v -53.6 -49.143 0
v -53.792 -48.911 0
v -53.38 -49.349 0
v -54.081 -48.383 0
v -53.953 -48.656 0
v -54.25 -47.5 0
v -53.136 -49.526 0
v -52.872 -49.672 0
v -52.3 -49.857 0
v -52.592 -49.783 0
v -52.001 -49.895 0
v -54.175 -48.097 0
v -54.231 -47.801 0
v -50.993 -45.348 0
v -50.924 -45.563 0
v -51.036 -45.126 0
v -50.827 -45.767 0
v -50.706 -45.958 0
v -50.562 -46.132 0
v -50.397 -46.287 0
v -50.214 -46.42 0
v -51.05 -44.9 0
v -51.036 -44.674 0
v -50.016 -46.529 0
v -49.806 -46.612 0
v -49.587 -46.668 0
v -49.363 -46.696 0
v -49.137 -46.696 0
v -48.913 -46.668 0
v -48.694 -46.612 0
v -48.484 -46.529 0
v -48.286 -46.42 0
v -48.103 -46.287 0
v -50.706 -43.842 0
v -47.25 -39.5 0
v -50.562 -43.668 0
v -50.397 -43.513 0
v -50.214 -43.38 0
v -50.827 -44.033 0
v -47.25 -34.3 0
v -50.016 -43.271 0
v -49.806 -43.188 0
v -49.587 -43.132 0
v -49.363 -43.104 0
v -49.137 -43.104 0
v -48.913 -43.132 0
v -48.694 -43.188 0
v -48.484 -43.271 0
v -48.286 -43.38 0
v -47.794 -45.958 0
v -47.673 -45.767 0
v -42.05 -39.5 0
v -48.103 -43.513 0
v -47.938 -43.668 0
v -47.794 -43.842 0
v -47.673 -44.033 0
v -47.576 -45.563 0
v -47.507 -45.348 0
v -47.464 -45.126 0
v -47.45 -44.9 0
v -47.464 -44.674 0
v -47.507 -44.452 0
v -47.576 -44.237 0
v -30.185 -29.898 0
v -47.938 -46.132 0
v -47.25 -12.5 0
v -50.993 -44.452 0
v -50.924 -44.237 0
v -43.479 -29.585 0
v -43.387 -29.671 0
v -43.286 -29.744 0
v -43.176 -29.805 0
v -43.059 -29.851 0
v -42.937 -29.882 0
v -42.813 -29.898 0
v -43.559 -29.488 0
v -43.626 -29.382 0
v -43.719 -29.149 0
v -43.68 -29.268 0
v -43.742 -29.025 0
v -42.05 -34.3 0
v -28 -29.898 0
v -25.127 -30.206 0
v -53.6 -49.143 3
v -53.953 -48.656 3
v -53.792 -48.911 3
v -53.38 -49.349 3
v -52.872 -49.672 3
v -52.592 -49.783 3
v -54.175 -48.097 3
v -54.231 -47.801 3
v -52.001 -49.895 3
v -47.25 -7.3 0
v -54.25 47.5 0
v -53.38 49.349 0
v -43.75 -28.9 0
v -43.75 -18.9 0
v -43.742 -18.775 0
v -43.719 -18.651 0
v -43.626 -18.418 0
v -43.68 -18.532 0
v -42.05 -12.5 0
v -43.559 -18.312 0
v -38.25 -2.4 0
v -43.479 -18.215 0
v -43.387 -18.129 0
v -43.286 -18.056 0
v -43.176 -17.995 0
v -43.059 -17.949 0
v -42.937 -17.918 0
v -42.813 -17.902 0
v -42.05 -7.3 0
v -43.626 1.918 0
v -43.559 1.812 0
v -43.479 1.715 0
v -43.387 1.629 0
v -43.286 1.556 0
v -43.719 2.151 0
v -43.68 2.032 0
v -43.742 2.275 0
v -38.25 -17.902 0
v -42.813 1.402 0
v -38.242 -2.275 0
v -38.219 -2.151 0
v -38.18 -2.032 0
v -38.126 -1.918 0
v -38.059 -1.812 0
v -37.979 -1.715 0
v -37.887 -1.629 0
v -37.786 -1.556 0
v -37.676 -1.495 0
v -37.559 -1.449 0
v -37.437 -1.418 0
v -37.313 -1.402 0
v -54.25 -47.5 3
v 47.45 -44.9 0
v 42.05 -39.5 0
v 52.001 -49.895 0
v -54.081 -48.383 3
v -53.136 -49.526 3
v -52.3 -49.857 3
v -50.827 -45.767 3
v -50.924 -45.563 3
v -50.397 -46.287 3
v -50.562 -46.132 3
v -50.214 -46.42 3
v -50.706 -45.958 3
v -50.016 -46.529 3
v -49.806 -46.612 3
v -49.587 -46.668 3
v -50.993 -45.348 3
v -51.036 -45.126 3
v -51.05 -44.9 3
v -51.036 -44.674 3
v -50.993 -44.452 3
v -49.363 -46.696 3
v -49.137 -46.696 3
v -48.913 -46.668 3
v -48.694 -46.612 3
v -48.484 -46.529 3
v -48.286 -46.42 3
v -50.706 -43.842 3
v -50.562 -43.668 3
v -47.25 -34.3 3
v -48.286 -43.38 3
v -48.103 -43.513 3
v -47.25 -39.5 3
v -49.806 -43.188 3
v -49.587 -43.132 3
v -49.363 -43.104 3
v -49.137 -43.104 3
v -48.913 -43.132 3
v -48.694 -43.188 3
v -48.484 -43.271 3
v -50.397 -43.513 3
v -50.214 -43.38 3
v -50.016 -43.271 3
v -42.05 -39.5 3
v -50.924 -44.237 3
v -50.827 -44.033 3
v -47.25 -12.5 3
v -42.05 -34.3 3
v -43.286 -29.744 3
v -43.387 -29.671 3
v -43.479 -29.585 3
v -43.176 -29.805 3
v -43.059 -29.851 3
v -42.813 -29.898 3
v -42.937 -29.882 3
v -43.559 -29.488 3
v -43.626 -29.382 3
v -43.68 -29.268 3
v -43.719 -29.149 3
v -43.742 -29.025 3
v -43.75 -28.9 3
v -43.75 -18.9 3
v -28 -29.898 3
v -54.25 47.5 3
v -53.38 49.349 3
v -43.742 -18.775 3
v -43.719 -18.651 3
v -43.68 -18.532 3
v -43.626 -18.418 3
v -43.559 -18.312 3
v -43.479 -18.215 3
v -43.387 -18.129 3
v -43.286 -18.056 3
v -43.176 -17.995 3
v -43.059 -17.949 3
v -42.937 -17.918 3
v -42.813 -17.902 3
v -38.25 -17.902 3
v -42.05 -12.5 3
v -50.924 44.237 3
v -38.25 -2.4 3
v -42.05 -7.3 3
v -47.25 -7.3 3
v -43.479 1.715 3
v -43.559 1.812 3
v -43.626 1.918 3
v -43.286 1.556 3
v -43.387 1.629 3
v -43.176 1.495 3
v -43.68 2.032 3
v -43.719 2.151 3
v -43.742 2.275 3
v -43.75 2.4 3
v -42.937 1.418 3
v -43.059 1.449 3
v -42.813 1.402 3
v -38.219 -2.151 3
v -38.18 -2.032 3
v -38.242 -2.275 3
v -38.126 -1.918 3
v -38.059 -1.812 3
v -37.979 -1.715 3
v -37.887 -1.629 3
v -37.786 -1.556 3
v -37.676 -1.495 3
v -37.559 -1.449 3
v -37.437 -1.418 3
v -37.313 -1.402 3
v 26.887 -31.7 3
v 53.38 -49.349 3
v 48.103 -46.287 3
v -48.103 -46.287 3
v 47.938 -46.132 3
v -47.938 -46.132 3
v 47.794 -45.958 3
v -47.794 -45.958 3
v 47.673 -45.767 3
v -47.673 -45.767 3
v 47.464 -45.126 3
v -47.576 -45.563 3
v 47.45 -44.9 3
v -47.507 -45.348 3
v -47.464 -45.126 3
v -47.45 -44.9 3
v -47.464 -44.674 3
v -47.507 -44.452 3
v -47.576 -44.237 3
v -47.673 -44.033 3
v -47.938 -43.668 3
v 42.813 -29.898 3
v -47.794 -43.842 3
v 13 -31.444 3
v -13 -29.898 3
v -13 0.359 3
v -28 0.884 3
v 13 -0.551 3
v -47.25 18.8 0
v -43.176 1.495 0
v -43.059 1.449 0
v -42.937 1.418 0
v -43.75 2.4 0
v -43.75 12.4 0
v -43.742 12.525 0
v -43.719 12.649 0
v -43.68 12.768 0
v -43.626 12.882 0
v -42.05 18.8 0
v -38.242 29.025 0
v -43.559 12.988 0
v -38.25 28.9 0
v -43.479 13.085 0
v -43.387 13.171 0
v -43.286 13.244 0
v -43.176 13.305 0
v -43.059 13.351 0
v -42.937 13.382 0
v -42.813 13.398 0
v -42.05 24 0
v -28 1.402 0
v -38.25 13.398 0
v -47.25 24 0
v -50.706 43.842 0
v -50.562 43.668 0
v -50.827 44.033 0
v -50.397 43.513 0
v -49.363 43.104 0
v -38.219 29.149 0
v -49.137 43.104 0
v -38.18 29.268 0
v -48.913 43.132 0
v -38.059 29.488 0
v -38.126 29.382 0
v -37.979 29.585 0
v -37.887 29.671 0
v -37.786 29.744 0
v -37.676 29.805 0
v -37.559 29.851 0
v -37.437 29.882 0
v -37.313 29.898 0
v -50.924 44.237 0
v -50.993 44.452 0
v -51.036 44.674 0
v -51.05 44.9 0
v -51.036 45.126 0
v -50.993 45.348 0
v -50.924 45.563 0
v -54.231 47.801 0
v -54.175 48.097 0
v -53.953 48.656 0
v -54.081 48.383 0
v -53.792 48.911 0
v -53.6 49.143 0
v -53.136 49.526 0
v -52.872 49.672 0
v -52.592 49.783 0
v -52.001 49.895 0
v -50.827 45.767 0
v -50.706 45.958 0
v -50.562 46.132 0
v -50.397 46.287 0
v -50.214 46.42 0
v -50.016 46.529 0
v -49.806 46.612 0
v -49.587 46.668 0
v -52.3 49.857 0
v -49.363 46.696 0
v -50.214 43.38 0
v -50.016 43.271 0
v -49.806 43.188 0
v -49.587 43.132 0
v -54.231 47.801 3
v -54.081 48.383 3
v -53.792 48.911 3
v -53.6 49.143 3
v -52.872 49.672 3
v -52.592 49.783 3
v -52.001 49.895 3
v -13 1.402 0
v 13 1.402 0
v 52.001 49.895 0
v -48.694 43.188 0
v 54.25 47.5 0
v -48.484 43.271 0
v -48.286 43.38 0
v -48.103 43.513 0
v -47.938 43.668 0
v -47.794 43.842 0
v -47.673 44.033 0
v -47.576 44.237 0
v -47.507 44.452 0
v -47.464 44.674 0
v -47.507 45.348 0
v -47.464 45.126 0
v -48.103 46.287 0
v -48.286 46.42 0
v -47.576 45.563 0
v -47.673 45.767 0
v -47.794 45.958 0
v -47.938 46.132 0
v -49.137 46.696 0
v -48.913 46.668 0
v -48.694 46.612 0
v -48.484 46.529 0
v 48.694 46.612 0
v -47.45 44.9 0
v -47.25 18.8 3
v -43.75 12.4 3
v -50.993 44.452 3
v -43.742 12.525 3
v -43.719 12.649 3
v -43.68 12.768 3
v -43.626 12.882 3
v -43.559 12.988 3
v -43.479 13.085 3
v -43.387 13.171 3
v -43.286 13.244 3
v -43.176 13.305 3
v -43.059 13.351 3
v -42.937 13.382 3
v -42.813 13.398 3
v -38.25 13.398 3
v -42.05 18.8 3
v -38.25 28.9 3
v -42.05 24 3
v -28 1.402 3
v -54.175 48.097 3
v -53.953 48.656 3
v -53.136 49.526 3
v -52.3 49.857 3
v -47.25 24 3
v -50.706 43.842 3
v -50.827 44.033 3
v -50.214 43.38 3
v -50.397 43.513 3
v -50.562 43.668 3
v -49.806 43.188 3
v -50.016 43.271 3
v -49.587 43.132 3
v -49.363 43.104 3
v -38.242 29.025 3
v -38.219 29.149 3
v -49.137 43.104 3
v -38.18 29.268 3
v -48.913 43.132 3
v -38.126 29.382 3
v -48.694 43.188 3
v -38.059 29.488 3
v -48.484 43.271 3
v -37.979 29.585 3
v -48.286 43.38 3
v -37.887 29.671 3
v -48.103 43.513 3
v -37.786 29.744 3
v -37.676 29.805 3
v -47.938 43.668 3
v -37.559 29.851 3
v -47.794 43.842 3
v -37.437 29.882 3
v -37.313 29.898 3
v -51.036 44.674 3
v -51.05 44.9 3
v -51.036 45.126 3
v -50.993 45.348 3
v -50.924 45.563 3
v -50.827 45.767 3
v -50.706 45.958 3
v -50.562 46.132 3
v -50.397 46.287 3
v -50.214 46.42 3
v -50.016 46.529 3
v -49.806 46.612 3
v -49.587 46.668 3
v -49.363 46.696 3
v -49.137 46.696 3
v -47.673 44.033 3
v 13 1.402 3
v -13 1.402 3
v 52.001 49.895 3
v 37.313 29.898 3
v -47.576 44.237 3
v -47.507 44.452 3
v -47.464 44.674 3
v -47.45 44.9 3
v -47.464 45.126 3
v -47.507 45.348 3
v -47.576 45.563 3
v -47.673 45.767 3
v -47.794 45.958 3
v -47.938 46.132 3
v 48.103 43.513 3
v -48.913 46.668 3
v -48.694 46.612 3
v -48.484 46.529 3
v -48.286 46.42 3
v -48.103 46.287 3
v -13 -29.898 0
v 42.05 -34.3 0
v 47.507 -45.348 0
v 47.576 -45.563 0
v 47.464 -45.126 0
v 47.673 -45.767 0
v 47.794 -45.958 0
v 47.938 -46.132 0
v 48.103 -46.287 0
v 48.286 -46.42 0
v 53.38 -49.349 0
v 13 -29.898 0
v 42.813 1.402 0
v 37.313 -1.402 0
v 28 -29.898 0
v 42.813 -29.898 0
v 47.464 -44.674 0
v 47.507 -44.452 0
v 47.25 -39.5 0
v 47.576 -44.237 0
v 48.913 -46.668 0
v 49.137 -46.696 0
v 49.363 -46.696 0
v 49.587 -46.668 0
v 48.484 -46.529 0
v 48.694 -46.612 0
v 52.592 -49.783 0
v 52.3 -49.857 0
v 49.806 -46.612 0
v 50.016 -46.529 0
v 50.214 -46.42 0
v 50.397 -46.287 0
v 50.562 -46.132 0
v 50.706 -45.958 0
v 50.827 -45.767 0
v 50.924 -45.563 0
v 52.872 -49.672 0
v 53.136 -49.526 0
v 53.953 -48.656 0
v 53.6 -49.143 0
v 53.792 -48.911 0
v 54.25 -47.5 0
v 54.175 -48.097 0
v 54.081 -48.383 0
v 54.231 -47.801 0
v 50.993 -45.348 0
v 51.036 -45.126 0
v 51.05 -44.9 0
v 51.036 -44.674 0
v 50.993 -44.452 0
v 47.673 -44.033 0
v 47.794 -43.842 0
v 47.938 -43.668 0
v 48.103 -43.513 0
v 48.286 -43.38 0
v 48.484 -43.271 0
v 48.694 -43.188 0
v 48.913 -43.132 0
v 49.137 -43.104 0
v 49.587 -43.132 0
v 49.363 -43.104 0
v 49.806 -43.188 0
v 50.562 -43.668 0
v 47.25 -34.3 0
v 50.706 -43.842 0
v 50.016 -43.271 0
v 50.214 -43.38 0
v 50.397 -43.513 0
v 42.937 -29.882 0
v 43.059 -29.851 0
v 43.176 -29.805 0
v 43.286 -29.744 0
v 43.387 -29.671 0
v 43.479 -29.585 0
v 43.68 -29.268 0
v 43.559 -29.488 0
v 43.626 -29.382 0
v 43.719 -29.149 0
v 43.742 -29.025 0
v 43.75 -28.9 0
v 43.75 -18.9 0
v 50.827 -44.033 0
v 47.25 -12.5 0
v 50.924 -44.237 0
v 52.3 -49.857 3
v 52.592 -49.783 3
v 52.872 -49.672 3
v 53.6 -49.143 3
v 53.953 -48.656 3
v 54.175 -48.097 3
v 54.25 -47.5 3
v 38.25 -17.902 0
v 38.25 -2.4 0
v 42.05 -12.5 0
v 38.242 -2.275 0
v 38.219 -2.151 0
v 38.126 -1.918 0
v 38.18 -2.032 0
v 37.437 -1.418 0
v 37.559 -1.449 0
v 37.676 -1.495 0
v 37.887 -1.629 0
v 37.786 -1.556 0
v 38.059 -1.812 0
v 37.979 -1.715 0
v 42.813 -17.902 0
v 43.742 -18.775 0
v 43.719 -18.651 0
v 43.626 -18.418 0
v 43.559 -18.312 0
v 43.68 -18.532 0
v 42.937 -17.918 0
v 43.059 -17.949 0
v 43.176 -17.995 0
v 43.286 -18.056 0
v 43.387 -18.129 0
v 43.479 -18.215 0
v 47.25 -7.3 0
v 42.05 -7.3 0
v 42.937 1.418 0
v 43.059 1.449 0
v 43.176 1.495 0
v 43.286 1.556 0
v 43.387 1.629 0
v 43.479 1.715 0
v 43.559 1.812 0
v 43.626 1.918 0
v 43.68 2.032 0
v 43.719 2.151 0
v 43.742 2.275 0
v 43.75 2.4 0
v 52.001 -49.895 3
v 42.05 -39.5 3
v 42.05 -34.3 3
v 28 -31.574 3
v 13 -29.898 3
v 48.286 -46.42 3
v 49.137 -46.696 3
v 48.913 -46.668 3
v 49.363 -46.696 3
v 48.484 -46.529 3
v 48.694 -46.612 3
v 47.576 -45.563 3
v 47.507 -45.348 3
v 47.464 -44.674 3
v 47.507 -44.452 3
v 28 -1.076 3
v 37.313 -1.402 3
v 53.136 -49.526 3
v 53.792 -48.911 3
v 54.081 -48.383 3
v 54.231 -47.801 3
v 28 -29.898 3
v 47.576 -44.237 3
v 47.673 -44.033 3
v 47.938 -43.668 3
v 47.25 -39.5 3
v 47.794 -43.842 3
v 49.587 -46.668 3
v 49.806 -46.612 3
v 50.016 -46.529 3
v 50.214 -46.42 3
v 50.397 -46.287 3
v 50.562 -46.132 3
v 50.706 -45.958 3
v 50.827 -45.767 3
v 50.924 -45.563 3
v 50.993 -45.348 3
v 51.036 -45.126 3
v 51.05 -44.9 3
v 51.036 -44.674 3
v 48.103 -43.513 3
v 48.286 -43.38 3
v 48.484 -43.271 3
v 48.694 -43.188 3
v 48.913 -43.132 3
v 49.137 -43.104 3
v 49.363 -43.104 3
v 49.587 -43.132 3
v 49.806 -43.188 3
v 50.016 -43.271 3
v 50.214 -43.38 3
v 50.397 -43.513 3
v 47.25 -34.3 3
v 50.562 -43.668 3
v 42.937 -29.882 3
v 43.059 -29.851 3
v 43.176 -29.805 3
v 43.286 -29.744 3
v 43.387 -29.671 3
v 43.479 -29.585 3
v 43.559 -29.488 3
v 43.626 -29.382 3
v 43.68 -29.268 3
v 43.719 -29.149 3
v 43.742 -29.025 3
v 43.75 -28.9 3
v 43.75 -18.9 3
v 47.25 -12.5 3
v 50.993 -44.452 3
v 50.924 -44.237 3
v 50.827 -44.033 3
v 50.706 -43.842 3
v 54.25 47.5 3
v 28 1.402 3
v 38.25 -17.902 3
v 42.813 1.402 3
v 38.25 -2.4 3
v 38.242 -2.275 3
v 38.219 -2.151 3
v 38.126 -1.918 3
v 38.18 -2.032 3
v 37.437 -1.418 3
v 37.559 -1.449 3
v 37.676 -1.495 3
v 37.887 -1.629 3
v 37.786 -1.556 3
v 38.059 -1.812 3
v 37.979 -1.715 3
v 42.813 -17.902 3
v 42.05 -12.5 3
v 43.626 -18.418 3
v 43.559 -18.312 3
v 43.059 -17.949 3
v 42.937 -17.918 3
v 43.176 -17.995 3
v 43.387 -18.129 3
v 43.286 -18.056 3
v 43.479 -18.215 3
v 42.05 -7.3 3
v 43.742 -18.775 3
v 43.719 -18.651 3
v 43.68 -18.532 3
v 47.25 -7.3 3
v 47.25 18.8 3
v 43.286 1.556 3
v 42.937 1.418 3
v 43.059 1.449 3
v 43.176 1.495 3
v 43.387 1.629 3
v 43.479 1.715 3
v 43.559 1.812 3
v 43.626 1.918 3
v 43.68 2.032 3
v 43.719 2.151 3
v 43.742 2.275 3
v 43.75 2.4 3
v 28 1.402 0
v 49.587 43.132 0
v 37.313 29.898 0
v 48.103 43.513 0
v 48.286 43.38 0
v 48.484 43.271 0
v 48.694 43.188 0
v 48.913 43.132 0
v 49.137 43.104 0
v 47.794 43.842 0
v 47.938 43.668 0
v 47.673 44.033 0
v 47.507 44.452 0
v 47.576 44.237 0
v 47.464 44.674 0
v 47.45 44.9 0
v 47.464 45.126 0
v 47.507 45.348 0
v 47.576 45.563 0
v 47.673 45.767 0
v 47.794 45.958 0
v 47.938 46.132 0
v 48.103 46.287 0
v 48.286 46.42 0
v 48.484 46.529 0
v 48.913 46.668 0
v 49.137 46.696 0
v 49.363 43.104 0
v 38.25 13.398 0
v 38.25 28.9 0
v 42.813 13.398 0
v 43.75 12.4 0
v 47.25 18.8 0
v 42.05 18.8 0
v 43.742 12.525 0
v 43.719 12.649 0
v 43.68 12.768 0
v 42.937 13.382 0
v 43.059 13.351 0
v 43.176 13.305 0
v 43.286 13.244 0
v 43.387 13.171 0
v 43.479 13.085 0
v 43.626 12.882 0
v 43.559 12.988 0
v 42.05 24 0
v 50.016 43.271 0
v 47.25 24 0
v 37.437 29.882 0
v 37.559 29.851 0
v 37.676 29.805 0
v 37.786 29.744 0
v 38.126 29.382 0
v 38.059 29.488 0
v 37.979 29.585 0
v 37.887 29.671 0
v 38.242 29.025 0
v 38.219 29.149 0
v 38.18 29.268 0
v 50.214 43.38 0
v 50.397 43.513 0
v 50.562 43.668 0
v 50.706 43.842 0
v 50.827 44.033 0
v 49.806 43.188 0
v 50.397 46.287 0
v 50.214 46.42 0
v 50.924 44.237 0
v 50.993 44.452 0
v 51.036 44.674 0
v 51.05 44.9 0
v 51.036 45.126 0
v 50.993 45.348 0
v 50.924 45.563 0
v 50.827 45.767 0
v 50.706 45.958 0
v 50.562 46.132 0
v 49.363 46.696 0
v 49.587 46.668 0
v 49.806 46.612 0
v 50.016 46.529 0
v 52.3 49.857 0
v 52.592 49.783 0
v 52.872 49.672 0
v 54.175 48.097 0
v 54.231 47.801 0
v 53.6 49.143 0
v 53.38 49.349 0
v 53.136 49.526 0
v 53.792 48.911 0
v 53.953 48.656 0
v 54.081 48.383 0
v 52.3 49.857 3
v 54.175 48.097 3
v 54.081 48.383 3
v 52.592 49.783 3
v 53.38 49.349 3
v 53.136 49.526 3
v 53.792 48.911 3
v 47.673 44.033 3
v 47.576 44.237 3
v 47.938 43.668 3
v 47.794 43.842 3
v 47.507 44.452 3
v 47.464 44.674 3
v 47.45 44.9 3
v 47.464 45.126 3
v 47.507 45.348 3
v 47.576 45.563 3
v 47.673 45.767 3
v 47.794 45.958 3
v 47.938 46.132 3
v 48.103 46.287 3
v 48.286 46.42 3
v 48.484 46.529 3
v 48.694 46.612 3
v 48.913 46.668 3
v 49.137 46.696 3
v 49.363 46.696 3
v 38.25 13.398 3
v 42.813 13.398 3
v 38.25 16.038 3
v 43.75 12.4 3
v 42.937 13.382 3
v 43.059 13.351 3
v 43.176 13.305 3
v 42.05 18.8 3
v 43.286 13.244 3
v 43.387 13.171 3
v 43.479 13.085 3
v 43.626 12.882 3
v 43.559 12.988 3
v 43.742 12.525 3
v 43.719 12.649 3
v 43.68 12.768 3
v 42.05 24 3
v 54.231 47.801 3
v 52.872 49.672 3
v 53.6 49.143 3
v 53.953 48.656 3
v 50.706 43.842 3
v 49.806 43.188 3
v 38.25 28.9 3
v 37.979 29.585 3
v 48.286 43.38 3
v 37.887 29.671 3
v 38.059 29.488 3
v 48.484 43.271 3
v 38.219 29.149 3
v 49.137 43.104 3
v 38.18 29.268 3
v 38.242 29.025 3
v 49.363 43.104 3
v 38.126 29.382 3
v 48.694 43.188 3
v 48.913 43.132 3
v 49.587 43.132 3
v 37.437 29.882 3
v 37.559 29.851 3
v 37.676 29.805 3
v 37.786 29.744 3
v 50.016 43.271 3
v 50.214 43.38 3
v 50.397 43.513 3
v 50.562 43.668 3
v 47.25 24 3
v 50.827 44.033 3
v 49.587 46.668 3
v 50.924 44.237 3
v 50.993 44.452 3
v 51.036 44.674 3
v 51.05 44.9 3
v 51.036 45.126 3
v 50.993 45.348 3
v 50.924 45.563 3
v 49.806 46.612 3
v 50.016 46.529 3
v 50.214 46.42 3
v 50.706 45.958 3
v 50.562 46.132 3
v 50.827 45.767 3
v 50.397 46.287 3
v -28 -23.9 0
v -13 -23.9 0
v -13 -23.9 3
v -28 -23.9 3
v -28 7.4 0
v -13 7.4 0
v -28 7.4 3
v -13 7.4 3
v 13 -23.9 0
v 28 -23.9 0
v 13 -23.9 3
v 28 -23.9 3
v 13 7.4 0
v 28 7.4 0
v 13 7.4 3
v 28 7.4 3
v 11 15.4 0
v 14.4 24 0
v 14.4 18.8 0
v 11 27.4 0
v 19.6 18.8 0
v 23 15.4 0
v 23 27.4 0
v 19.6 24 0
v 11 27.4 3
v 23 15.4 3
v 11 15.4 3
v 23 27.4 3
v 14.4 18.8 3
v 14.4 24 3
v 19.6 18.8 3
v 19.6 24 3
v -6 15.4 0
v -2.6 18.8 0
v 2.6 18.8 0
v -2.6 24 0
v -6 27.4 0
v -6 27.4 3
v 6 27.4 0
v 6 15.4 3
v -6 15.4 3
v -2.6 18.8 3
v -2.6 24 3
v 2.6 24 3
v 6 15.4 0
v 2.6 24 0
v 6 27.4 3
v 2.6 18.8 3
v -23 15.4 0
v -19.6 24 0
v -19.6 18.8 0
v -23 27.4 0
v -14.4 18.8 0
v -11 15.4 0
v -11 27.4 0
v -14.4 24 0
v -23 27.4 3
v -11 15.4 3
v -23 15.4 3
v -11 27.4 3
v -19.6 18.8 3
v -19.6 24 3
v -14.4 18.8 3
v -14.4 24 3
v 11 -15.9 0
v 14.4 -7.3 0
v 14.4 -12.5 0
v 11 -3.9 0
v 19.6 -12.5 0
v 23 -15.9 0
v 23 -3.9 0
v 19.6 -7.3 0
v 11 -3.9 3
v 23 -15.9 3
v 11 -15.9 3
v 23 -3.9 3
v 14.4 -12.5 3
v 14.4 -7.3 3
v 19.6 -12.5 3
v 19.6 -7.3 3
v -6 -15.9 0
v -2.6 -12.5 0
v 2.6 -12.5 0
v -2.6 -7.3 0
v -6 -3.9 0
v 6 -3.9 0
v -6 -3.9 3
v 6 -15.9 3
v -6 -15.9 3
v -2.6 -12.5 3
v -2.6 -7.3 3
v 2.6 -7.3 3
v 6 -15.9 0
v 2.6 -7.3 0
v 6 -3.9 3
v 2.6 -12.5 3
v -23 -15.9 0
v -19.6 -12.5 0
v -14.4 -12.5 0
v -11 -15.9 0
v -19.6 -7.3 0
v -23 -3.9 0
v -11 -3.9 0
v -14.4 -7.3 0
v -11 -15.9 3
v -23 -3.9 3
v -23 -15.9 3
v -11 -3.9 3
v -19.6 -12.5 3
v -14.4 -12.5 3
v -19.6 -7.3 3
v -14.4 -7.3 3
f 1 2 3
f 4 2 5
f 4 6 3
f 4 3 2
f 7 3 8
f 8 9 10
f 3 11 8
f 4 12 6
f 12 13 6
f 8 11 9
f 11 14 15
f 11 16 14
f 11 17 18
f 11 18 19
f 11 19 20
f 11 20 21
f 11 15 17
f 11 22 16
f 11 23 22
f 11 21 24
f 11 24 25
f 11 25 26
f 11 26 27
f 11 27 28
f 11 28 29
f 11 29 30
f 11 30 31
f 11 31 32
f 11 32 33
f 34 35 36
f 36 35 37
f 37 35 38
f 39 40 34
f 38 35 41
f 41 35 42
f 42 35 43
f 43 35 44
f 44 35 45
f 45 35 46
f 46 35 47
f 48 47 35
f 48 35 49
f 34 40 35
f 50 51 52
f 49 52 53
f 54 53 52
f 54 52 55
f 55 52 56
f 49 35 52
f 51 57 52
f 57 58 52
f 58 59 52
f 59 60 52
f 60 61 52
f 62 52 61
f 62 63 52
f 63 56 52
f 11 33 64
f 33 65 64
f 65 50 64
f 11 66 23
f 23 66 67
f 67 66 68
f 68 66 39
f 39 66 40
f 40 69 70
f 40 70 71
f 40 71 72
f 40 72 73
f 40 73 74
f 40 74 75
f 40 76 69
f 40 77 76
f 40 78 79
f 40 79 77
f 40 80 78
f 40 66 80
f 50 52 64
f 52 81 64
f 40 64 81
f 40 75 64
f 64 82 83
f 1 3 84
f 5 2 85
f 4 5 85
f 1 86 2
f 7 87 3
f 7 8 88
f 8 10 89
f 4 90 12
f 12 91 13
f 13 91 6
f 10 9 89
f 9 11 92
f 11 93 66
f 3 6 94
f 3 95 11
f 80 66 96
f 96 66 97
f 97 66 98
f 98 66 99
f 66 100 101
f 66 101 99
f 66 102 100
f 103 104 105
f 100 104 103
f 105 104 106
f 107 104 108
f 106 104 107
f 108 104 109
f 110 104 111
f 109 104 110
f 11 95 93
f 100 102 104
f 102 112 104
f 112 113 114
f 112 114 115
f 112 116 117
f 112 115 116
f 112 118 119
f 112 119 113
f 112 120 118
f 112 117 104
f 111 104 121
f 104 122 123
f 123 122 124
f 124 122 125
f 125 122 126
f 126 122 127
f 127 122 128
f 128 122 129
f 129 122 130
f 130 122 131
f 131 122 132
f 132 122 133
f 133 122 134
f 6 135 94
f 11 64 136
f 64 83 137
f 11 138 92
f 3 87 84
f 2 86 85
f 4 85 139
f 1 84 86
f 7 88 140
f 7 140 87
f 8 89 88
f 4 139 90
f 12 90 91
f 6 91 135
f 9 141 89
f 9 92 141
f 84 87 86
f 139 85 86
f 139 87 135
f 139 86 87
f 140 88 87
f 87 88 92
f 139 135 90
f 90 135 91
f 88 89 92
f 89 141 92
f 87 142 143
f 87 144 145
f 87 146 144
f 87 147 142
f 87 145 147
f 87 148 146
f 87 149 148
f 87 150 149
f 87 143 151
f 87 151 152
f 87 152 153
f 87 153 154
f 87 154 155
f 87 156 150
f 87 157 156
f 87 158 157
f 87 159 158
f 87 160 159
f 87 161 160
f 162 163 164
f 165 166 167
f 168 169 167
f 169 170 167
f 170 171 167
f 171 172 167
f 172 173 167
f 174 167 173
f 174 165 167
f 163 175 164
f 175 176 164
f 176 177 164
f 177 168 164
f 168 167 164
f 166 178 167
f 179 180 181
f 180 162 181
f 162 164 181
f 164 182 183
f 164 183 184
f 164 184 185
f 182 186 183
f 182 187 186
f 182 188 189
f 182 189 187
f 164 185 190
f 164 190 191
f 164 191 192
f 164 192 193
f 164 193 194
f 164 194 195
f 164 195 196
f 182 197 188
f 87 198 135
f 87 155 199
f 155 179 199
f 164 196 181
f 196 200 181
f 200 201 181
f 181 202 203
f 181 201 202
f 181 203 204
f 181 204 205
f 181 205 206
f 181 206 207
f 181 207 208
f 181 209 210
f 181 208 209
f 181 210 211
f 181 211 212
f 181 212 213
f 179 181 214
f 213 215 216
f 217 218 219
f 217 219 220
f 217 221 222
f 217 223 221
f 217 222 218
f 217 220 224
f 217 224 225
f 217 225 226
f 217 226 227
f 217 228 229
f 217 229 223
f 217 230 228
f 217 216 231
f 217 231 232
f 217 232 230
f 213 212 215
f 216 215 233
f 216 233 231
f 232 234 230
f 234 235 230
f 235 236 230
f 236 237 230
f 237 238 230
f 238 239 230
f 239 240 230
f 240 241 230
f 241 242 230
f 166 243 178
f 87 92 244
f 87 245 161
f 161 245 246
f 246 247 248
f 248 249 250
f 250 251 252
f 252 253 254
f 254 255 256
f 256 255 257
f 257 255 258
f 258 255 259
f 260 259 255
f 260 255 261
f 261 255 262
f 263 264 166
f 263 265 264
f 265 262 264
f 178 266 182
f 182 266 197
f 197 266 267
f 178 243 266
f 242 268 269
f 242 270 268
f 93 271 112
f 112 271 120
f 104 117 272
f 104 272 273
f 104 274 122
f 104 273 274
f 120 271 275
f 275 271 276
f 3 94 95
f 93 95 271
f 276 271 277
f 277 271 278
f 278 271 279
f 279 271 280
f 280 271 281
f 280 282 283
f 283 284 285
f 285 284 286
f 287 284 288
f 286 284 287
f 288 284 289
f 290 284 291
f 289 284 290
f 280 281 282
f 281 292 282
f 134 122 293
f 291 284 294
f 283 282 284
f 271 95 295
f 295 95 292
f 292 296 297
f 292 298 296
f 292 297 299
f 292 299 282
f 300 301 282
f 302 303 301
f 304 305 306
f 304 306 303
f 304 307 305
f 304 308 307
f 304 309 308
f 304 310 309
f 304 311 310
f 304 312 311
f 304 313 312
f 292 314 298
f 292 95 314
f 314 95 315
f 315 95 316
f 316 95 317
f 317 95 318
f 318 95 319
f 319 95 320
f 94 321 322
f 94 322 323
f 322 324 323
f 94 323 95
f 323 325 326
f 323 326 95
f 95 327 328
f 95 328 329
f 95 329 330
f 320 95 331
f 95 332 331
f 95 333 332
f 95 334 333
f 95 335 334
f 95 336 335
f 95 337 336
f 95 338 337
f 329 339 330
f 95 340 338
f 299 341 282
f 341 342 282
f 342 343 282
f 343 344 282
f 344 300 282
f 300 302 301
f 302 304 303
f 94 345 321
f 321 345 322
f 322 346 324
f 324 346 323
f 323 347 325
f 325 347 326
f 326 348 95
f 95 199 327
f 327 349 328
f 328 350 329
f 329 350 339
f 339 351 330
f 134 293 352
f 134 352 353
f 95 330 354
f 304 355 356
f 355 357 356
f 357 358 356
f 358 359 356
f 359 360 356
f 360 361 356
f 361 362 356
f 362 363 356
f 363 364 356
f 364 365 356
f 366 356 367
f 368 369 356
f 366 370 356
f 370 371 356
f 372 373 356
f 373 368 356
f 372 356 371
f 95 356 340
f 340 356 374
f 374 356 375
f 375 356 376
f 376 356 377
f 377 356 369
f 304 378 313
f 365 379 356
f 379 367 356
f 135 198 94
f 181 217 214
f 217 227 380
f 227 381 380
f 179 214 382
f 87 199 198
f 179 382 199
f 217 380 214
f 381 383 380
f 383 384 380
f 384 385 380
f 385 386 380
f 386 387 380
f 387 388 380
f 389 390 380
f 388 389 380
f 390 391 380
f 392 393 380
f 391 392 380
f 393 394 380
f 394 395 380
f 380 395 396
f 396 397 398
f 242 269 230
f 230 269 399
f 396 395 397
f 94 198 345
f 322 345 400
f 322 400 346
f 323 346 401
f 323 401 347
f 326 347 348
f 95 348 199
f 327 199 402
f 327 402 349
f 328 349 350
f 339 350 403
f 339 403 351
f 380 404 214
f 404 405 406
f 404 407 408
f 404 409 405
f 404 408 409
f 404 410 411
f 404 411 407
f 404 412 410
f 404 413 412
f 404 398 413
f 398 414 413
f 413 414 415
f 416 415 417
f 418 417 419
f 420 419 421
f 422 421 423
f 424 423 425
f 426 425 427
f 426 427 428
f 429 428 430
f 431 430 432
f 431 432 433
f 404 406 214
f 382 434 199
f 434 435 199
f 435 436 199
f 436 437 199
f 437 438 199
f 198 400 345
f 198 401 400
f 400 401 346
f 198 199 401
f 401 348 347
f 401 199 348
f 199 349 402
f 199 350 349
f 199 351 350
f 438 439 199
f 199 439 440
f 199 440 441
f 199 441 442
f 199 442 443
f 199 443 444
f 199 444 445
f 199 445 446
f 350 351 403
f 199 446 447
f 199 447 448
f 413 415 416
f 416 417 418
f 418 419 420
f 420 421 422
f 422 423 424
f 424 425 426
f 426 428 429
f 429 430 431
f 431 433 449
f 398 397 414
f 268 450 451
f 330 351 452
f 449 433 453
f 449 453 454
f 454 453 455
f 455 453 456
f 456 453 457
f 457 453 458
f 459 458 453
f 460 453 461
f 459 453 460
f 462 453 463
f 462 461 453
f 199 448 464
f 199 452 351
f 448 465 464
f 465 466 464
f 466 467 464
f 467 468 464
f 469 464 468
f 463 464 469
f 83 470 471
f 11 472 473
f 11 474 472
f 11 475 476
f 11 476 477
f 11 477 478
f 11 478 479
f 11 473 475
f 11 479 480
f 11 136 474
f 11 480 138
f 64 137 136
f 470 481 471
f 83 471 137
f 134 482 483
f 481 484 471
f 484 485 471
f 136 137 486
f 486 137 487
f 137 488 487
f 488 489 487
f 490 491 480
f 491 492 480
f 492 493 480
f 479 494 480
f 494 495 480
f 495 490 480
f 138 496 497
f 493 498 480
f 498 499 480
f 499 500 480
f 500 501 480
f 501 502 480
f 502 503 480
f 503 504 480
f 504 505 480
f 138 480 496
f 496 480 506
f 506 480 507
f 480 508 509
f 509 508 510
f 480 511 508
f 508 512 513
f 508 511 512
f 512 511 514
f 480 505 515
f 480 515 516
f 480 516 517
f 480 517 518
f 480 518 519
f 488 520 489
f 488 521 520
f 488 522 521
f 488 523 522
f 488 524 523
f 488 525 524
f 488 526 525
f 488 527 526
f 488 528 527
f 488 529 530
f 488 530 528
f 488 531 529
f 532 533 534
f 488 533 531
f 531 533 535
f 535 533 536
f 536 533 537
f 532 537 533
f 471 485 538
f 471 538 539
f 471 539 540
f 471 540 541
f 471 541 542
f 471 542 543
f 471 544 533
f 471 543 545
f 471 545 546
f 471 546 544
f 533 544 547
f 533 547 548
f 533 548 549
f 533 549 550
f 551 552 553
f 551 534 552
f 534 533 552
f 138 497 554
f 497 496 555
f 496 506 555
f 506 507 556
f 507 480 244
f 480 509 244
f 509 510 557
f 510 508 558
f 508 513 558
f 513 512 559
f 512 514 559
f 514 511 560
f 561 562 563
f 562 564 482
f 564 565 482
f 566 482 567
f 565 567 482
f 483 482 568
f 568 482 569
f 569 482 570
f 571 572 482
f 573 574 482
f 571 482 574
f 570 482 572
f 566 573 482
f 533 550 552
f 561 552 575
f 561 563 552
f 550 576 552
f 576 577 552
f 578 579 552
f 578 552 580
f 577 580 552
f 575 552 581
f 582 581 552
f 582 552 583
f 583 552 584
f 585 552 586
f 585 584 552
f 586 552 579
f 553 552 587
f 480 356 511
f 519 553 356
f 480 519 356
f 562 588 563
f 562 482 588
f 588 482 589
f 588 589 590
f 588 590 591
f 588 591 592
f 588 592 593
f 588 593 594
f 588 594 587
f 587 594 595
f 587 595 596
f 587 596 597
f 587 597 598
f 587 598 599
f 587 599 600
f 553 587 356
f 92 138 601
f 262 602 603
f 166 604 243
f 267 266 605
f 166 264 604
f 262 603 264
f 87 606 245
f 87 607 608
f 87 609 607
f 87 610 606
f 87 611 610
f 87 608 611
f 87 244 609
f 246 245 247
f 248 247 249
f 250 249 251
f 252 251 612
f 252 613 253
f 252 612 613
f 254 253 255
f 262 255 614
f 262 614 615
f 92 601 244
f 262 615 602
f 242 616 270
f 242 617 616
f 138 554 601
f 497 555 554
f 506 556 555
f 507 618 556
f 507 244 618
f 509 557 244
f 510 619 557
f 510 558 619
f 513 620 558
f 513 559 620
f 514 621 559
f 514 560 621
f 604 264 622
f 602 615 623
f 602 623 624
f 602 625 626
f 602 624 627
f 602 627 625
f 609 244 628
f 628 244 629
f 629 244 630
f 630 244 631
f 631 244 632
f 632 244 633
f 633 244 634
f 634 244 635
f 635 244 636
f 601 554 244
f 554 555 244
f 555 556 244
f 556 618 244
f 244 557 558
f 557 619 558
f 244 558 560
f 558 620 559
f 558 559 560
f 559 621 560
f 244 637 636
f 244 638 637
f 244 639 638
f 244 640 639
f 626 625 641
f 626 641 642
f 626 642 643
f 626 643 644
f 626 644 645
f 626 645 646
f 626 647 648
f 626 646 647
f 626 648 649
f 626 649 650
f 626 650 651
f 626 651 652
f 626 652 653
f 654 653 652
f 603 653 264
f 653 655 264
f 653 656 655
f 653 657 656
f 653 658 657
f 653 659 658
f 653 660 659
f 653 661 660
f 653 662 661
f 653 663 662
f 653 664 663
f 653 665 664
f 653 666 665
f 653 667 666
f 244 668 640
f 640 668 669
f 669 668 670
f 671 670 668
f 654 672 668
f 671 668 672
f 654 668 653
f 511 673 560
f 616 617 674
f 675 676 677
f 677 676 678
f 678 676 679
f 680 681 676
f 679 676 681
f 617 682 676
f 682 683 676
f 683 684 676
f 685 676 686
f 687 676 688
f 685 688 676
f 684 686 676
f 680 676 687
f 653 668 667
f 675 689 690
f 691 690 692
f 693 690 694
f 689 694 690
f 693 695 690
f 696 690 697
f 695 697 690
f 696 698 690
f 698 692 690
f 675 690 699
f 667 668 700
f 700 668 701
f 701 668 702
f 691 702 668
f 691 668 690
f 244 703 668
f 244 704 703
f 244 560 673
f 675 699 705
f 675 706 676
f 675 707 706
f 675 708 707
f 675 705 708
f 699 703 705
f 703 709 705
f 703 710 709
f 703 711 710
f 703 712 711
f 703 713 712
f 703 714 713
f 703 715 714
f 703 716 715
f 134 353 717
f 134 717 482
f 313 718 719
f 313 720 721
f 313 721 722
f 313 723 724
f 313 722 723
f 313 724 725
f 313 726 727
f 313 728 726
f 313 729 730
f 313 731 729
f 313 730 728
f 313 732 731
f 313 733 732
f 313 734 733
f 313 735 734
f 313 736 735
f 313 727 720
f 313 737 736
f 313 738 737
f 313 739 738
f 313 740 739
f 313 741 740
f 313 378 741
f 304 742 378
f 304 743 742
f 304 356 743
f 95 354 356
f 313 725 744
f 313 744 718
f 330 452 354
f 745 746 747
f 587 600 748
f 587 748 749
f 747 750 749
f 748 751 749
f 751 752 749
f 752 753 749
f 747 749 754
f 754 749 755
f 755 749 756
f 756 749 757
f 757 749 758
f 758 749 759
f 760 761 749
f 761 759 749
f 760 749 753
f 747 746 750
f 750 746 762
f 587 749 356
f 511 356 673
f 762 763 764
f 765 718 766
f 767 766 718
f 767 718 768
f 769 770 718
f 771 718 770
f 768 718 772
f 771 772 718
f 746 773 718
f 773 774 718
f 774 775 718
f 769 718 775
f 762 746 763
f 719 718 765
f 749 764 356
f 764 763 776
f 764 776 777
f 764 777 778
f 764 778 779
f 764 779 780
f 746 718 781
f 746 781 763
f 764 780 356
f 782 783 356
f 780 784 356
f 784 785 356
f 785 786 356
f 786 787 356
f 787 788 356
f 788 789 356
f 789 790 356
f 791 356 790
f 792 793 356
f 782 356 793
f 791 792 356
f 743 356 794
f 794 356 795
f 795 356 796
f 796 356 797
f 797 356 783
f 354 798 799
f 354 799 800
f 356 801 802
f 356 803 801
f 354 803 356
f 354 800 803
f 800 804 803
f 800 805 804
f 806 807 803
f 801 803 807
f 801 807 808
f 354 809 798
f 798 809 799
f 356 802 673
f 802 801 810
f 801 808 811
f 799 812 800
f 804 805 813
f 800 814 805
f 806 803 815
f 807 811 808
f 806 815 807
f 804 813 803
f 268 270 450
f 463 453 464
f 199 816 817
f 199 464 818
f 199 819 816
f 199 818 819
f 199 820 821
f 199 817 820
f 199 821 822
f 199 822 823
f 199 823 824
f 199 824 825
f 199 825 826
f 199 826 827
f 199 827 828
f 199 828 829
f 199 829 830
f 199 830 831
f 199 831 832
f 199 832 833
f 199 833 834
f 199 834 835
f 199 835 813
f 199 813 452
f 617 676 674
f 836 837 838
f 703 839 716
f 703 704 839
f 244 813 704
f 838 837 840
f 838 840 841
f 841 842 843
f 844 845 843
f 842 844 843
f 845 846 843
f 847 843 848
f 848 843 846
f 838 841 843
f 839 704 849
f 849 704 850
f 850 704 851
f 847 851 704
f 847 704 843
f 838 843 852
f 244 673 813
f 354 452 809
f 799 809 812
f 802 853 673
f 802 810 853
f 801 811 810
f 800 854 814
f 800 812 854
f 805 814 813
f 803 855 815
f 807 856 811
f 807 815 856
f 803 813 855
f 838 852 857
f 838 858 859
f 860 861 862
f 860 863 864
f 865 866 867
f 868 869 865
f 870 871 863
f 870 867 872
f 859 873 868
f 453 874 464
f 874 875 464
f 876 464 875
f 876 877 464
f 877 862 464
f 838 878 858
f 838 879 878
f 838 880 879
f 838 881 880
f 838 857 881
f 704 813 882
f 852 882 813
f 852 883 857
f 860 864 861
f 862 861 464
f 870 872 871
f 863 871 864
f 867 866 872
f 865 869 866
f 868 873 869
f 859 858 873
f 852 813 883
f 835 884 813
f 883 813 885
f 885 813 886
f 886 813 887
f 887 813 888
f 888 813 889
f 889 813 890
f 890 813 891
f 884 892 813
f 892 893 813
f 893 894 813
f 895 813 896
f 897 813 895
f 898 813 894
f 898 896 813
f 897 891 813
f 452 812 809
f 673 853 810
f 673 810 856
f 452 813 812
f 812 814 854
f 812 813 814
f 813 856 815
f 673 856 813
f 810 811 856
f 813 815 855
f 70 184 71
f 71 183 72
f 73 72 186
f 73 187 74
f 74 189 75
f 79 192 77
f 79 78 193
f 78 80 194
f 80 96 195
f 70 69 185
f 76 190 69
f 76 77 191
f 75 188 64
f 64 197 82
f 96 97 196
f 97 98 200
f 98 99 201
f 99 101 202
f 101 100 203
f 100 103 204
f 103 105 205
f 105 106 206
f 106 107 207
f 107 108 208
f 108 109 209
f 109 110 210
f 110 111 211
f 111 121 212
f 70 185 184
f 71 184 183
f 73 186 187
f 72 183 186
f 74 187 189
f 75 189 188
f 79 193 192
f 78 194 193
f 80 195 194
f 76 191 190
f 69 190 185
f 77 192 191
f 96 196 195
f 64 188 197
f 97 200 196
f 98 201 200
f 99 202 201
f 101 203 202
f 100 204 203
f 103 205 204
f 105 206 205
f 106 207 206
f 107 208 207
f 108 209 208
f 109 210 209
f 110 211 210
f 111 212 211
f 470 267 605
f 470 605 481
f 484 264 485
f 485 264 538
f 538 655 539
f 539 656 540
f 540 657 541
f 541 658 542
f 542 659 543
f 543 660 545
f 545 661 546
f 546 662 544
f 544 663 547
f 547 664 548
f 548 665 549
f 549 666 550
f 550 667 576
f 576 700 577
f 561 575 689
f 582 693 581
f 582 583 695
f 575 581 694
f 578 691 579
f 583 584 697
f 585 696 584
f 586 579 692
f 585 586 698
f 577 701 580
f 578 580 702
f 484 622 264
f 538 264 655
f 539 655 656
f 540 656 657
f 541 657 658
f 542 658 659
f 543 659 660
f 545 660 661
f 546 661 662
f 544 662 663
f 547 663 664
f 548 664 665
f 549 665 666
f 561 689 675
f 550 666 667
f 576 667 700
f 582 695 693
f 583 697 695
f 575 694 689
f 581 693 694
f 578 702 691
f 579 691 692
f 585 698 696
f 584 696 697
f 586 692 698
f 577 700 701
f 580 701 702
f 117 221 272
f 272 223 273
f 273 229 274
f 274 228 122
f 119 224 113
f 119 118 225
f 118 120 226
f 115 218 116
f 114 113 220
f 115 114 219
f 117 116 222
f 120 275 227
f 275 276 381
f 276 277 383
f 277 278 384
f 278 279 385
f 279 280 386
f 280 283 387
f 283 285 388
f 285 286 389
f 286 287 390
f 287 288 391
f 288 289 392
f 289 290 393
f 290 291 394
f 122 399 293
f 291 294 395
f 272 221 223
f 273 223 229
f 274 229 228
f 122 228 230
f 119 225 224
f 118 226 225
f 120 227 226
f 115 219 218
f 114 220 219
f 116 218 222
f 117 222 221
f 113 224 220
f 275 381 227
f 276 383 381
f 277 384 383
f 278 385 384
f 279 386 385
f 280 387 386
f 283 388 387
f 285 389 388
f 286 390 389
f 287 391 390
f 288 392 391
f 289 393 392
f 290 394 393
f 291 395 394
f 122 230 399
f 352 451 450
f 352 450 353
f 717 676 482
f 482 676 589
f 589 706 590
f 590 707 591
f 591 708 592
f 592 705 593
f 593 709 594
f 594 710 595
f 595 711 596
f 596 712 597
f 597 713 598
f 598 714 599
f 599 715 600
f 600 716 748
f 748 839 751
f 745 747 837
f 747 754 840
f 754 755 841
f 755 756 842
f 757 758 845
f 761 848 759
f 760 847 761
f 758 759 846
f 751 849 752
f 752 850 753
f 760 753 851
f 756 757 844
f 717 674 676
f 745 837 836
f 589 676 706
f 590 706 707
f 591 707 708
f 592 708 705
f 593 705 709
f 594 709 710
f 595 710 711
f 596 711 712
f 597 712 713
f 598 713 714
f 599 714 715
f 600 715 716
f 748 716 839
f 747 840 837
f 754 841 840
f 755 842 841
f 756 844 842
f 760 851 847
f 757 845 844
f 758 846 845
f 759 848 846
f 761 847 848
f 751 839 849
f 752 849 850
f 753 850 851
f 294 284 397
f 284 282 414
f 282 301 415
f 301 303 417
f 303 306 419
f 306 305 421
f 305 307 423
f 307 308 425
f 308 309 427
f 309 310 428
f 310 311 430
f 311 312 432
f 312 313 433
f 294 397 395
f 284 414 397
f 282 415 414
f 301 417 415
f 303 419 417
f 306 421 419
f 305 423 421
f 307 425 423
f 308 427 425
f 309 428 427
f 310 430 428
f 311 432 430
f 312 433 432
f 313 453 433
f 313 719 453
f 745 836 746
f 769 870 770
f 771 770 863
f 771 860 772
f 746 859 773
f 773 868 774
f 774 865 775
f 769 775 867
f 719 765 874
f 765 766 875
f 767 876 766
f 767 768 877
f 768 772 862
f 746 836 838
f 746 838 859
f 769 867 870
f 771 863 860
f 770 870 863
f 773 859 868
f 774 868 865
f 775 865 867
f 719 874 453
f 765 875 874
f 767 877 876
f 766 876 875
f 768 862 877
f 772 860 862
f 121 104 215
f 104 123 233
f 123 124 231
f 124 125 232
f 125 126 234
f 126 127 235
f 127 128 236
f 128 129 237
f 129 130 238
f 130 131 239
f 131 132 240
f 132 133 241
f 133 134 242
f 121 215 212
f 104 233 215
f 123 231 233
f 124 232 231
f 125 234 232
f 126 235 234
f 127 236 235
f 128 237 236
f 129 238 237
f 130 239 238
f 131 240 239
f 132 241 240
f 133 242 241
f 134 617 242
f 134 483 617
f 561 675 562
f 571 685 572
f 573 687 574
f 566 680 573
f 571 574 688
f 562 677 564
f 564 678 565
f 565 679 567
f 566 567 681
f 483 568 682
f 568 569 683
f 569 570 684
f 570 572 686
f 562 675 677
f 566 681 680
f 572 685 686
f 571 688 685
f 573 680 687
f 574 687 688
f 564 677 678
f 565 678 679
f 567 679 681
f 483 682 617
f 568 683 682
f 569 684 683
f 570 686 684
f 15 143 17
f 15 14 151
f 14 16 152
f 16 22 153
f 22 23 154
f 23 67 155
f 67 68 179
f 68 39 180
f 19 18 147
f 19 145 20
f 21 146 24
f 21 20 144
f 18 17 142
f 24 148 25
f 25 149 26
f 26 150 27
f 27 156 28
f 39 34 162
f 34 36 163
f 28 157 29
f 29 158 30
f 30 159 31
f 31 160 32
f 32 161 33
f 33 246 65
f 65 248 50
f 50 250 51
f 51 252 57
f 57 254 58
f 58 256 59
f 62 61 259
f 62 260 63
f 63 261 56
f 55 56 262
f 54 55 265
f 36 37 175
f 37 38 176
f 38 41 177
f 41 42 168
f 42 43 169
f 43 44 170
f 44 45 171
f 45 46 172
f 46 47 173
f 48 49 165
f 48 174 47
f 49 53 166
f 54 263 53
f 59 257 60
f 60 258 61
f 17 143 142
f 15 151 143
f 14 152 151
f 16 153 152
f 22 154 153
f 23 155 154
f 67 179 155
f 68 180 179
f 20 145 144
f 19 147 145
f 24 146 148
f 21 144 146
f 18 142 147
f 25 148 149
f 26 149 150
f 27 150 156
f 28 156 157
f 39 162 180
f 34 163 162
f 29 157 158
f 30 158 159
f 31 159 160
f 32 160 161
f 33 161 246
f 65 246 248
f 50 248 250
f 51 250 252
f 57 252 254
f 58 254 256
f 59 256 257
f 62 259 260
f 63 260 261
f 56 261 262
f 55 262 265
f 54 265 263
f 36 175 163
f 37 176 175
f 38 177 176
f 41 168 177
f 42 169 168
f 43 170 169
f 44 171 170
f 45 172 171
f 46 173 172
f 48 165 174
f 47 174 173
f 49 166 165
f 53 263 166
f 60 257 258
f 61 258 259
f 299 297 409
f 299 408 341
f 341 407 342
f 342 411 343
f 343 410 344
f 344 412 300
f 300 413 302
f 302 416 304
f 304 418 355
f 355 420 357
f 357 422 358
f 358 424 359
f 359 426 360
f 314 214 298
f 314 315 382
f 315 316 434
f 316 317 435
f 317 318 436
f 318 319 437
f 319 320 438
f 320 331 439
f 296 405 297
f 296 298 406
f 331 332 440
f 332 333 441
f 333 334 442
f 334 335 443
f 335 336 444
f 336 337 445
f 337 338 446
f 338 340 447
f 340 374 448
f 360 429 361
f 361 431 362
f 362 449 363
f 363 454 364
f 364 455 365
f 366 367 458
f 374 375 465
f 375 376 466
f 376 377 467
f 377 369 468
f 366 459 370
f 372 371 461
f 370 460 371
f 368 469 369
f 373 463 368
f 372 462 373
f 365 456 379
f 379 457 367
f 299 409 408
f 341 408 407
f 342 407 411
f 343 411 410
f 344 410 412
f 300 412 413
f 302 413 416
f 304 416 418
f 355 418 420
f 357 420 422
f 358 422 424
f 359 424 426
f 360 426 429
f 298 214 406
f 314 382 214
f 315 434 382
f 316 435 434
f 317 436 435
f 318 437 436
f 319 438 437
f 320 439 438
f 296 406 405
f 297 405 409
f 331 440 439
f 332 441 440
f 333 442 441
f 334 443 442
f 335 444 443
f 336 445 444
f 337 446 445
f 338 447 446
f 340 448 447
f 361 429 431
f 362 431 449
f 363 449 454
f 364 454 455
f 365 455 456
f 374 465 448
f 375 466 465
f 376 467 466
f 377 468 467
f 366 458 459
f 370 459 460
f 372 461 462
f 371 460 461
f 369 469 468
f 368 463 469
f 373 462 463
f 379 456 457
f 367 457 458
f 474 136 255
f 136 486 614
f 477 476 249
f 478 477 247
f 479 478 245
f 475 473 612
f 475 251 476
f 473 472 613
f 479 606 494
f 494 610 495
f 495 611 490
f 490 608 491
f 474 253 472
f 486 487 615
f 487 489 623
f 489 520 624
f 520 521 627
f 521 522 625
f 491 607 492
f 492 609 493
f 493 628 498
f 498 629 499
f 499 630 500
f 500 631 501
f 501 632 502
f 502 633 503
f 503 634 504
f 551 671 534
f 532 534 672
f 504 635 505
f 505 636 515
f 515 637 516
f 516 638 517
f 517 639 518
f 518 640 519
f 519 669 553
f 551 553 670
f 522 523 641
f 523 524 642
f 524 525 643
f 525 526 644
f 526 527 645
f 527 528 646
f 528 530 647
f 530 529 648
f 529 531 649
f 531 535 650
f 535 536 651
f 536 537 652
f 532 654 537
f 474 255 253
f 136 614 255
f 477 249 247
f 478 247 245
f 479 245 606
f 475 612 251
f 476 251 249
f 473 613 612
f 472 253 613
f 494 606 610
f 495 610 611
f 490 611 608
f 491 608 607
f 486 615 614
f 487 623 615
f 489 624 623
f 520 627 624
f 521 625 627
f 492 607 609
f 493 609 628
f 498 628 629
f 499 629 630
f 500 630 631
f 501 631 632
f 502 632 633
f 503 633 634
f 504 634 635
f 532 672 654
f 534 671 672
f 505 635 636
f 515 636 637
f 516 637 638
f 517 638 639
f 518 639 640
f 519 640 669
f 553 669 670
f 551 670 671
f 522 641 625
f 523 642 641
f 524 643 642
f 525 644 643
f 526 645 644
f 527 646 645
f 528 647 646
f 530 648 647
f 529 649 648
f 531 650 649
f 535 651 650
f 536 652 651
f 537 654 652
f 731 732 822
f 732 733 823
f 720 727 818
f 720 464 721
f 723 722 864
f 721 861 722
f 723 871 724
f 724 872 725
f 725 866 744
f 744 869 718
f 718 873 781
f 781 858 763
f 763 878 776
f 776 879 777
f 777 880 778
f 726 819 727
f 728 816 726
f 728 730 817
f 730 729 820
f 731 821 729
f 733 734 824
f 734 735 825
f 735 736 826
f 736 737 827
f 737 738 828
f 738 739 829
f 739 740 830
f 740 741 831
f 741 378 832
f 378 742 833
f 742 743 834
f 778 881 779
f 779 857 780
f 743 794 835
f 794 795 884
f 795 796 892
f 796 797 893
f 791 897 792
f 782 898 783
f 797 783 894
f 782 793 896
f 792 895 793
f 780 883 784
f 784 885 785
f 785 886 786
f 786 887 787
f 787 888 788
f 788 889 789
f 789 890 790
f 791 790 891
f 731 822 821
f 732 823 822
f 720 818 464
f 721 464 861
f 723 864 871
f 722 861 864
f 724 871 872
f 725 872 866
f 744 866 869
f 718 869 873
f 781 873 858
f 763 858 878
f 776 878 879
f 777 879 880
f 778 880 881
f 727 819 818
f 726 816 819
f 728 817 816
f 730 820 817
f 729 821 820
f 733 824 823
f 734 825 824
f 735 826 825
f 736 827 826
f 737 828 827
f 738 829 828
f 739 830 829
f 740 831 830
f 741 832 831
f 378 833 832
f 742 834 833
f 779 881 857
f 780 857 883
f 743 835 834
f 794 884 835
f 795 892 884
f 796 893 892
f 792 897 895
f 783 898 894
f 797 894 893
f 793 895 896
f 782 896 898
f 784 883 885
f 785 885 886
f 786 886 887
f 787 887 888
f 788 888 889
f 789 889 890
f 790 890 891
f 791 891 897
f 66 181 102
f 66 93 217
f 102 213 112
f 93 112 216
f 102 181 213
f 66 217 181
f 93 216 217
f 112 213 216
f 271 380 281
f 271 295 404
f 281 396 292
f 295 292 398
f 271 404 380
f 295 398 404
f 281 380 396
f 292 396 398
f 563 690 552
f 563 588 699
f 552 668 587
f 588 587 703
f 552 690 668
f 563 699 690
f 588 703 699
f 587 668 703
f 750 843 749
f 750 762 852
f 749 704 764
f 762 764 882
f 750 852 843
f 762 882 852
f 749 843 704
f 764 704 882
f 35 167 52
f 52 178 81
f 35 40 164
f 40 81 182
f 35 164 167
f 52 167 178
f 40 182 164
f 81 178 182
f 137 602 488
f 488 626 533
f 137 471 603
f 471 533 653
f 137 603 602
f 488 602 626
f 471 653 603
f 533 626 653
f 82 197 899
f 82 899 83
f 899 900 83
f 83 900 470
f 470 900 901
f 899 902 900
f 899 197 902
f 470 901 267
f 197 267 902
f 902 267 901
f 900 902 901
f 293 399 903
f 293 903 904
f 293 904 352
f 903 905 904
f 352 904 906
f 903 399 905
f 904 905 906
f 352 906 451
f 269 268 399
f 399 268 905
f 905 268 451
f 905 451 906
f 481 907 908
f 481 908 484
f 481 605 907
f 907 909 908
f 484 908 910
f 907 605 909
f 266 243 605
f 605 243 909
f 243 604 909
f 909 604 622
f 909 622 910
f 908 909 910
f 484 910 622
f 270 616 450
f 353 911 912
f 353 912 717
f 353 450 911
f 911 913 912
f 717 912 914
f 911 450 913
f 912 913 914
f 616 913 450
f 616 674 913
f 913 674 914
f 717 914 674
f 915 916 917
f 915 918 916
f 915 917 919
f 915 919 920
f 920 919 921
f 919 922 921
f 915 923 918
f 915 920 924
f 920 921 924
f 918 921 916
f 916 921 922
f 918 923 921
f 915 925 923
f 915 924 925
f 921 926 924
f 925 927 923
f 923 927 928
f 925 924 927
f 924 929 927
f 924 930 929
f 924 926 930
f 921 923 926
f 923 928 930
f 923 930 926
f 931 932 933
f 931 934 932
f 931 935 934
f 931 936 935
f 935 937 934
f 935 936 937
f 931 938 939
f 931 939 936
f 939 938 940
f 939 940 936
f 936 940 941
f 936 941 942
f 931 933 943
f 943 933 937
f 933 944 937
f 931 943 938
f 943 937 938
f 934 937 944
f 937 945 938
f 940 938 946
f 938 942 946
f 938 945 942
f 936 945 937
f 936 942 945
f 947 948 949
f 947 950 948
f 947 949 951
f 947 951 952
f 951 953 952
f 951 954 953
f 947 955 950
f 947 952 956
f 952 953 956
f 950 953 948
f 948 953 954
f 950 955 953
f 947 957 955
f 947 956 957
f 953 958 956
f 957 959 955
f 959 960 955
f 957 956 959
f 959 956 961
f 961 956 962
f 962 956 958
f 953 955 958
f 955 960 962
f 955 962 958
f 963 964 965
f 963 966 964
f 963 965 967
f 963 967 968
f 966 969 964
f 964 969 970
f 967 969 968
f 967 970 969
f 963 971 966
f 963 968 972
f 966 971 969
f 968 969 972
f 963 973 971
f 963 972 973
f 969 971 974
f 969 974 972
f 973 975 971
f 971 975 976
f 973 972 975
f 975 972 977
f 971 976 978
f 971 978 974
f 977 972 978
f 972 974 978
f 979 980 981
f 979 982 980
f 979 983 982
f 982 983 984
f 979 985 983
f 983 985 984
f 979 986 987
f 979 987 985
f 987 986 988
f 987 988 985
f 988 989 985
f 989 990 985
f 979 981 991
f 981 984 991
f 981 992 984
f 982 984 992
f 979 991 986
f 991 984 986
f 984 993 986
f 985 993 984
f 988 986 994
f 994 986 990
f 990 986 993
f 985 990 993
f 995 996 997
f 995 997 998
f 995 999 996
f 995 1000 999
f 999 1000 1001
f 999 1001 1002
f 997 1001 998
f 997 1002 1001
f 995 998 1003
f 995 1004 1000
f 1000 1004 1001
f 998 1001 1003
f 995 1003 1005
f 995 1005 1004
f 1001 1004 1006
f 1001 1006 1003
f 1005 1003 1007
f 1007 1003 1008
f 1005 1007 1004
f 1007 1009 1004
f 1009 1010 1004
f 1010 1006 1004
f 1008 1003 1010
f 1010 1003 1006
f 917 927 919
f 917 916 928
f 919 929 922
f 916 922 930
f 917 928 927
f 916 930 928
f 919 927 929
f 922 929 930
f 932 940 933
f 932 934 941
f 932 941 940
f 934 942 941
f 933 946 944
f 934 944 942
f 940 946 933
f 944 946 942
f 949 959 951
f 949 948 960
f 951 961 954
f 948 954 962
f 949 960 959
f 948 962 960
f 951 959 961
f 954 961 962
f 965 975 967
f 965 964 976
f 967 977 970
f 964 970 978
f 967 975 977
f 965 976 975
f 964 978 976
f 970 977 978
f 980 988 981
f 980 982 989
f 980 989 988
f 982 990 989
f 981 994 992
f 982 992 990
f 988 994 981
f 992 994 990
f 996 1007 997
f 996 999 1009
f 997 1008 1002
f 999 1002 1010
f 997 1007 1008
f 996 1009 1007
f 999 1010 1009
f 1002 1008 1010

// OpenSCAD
$fn = 50;

difference() {
	union() {
		translate(v = [0, 0, 0]) {
			rotate(a = [0, 0, 0]) {
				difference() {
					union() {
						translate(v = [0, 0, 0]) {
							rotate(a = [0, 0, 0]) {
								difference() {
									union() {
										hull() {
											translate(v = [-51.8500000005, 47.5000000005, 0]) {
												cylinder(h = 3.0, r = 2.4);
											}
											translate(v = [51.8500000005, 47.5000000005, 0]) {
												cylinder(h = 3.0, r = 2.4);
											}
											translate(v = [-51.8500000005, -47.5000000005, 0]) {
												cylinder(h = 3.0, r = 2.4);
											}
											translate(v = [51.8500000005, -47.5000000005, 0]) {
												cylinder(h = 3.0, r = 2.4);
											}
										}
									}
									union() {
										translate(v = [0.0, -23.900000000000006, -0.1]) {
											hull() {
												translate(v = [-42.75, 5.0, 0]) {
													cylinder(h = 18.2, r = 1.0);
												}
												translate(v = [42.75, 5.0, 0]) {
													cylinder(h = 18.2, r = 1.0);
												}
												translate(v = [-42.75, -5.0, 0]) {
													cylinder(h = 18.2, r = 1.0);
												}
												translate(v = [42.75, -5.0, 0]) {
													cylinder(h = 18.2, r = 1.0);
												}
											}
										}
										translate(v = [0.0, -15.650000000000006, -0.1]) {
											hull() {
												translate(v = [-37.25, 13.25, 0]) {
													cylinder(h = 18.2, r = 1.0);
												}
												translate(v = [37.25, 13.25, 0]) {
													cylinder(h = 18.2, r = 1.0);
												}
												translate(v = [-37.25, -13.25, 0]) {
													cylinder(h = 18.2, r = 1.0);
												}
												translate(v = [37.25, -13.25, 0]) {
													cylinder(h = 18.2, r = 1.0);
												}
											}
										}
										translate(v = [0.0, 7.399999999999995, -0.1]) {
											hull() {
												translate(v = [-42.75, 5.0, 0]) {
													cylinder(h = 18.2, r = 1.0);
												}
												translate(v = [42.75, 5.0, 0]) {
													cylinder(h = 18.2, r = 1.0);
												}
												translate(v = [-42.75, -5.0, 0]) {
													cylinder(h = 18.2, r = 1.0);
												}
												translate(v = [42.75, -5.0, 0]) {
													cylinder(h = 18.2, r = 1.0);
												}
											}
										}
										translate(v = [0.0, 15.649999999999995, -0.1]) {
											hull() {
												translate(v = [-37.25, 13.25, 0]) {
													cylinder(h = 18.2, r = 1.0);
												}
												translate(v = [37.25, 13.25, 0]) {
													cylinder(h = 18.2, r = 1.0);
												}
												translate(v = [-37.25, -13.25, 0]) {
													cylinder(h = 18.2, r = 1.0);
												}
												translate(v = [37.25, -13.25, 0]) {
													cylinder(h = 18.2, r = 1.0);
												}
											}
										}
										translate(v = [-49.2500000005, -44.9000000005, -0.1]) {
											cylinder(h = 6.2, r = 1.8);
										}
										translate(v = [-49.2500000005, 44.9000000005, -0.1]) {
											cylinder(h = 6.2, r = 1.8);
										}
										translate(v = [49.2500000005, -44.9000000005, -0.1]) {
											cylinder(h = 6.2, r = 1.8);
										}
										translate(v = [49.2500000005, 44.9000000005, -0.1]) {
											cylinder(h = 6.2, r = 1.8);
										}
										translate(v = [-47.25, -12.500000000000005, -0.1]) {
											cube(size = [5.2, 5.2, 6.2]);
										}
										translate(v = [-47.25, 18.799999999999994, -0.1]) {
											cube(size = [5.2, 5.2, 6.2]);
										}
										translate(v = [42.05, -12.500000000000005, -0.1]) {
											cube(size = [5.2, 5.2, 6.2]);
										}
										translate(v = [42.05, 18.799999999999994, -0.1]) {
											cube(size = [5.2, 5.2, 6.2]);
										}
										translate(v = [-47.25, -39.5, -0.1]) {
											cube(size = [5.2, 5.2, 6.2]);
										}
										translate(v = [42.05, -39.5, -0.1]) {
											cube(size = [5.2, 5.2, 6.2]);
										}
									}
								}
							}
						}
						translate(v = [0, 0, 0]) {
							rotate(a = [0, 0, 0]) {
								difference() {
									union() {
										translate(v = [-28.0, -31.7, 0]) {
											cube(size = [15.0, 7.8, 3.0]);
										}
									}
									union();
								}
							}
						}
						translate(v = [0, 0, 0]) {
							rotate(a = [0, 0, 0]) {
								difference() {
									union() {
										translate(v = [-28.0, -1.3999999999999986, 0]) {
											cube(size = [15.0, 8.8, 3.0]);
										}
									}
									union();
								}
							}
						}
						translate(v = [0, 0, 0]) {
							rotate(a = [0, 0, 0]) {
								difference() {
									union() {
										translate(v = [13.0, -31.7, 0]) {
											cube(size = [15.0, 7.8, 3.0]);
										}
									}
									union();
								}
							}
						}
						translate(v = [0, 0, 0]) {
							rotate(a = [0, 0, 0]) {
								difference() {
									union() {
										translate(v = [13.0, -1.3999999999999986, 0]) {
											cube(size = [15.0, 8.8, 3.0]);
										}
									}
									union();
								}
							}
						}
					}
					union();
				}
			}
		}
		translate(v = [-17.000000000500002, -9.899999999999999, 0]) {
			rotate(a = [0, 0, 0]) {
				difference() {
					union() {
						translate(v = [-6.0, -6.0, 0]) {
							cube(size = [12.0, 12.0, 3.0]);
						}
					}
					union() {
						translate(v = [-2.6, -2.6, -0.1]) {
							cube(size = [5.2, 5.2, 3.2]);
						}
					}
				}
			}
		}
		translate(v = [-5.000018177270249e-10, -9.899999999999999, 0]) {
			rotate(a = [0, 0, 0]) {
				difference() {
					union() {
						translate(v = [-6.0, -6.0, 0]) {
							cube(size = [12.0, 12.0, 3.0]);
						}
					}
					union() {
						translate(v = [-2.6, -2.6, -0.1]) {
							cube(size = [5.2, 5.2, 3.2]);
						}
					}
				}
			}
		}
		translate(v = [16.999999999499998, -9.899999999999999, 0]) {
			rotate(a = [0, 0, 0]) {
				difference() {
					union() {
						translate(v = [-6.0, -6.0, 0]) {
							cube(size = [12.0, 12.0, 3.0]);
						}
					}
					union() {
						translate(v = [-2.6, -2.6, -0.1]) {
							cube(size = [5.2, 5.2, 3.2]);
						}
					}
				}
			}
		}
		translate(v = [-17.000000000500002, 21.400000000000002, 0]) {
			rotate(a = [0, 0, 0]) {
				difference() {
					union() {
						translate(v = [-6.0, -6.0, 0]) {
							cube(size = [12.0, 12.0, 3.0]);
						}
					}
					union() {
						translate(v = [-2.6, -2.6, -0.1]) {
							cube(size = [5.2, 5.2, 3.2]);
						}
					}
				}
			}
		}
		translate(v = [-5.000018177270249e-10, 21.400000000000002, 0]) {
			rotate(a = [0, 0, 0]) {
				difference() {
					union() {
						translate(v = [-6.0, -6.0, 0]) {
							cube(size = [12.0, 12.0, 3.0]);
						}
					}
					union() {
						translate(v = [-2.6, -2.6, -0.1]) {
							cube(size = [5.2, 5.2, 3.2]);
						}
					}
				}
			}
		}
		translate(v = [16.999999999499998, 21.400000000000002, 0]) {
			rotate(a = [0, 0, 0]) {
				difference() {
					union() {
						translate(v = [-6.0, -6.0, 0]) {
							cube(size = [12.0, 12.0, 3.0]);
						}
					}
					union() {
						translate(v = [-2.6, -2.6, -0.1]) {
							cube(size = [5.2, 5.2, 3.2]);
						}
					}
				}
			}
		}
	}
	union();
}
